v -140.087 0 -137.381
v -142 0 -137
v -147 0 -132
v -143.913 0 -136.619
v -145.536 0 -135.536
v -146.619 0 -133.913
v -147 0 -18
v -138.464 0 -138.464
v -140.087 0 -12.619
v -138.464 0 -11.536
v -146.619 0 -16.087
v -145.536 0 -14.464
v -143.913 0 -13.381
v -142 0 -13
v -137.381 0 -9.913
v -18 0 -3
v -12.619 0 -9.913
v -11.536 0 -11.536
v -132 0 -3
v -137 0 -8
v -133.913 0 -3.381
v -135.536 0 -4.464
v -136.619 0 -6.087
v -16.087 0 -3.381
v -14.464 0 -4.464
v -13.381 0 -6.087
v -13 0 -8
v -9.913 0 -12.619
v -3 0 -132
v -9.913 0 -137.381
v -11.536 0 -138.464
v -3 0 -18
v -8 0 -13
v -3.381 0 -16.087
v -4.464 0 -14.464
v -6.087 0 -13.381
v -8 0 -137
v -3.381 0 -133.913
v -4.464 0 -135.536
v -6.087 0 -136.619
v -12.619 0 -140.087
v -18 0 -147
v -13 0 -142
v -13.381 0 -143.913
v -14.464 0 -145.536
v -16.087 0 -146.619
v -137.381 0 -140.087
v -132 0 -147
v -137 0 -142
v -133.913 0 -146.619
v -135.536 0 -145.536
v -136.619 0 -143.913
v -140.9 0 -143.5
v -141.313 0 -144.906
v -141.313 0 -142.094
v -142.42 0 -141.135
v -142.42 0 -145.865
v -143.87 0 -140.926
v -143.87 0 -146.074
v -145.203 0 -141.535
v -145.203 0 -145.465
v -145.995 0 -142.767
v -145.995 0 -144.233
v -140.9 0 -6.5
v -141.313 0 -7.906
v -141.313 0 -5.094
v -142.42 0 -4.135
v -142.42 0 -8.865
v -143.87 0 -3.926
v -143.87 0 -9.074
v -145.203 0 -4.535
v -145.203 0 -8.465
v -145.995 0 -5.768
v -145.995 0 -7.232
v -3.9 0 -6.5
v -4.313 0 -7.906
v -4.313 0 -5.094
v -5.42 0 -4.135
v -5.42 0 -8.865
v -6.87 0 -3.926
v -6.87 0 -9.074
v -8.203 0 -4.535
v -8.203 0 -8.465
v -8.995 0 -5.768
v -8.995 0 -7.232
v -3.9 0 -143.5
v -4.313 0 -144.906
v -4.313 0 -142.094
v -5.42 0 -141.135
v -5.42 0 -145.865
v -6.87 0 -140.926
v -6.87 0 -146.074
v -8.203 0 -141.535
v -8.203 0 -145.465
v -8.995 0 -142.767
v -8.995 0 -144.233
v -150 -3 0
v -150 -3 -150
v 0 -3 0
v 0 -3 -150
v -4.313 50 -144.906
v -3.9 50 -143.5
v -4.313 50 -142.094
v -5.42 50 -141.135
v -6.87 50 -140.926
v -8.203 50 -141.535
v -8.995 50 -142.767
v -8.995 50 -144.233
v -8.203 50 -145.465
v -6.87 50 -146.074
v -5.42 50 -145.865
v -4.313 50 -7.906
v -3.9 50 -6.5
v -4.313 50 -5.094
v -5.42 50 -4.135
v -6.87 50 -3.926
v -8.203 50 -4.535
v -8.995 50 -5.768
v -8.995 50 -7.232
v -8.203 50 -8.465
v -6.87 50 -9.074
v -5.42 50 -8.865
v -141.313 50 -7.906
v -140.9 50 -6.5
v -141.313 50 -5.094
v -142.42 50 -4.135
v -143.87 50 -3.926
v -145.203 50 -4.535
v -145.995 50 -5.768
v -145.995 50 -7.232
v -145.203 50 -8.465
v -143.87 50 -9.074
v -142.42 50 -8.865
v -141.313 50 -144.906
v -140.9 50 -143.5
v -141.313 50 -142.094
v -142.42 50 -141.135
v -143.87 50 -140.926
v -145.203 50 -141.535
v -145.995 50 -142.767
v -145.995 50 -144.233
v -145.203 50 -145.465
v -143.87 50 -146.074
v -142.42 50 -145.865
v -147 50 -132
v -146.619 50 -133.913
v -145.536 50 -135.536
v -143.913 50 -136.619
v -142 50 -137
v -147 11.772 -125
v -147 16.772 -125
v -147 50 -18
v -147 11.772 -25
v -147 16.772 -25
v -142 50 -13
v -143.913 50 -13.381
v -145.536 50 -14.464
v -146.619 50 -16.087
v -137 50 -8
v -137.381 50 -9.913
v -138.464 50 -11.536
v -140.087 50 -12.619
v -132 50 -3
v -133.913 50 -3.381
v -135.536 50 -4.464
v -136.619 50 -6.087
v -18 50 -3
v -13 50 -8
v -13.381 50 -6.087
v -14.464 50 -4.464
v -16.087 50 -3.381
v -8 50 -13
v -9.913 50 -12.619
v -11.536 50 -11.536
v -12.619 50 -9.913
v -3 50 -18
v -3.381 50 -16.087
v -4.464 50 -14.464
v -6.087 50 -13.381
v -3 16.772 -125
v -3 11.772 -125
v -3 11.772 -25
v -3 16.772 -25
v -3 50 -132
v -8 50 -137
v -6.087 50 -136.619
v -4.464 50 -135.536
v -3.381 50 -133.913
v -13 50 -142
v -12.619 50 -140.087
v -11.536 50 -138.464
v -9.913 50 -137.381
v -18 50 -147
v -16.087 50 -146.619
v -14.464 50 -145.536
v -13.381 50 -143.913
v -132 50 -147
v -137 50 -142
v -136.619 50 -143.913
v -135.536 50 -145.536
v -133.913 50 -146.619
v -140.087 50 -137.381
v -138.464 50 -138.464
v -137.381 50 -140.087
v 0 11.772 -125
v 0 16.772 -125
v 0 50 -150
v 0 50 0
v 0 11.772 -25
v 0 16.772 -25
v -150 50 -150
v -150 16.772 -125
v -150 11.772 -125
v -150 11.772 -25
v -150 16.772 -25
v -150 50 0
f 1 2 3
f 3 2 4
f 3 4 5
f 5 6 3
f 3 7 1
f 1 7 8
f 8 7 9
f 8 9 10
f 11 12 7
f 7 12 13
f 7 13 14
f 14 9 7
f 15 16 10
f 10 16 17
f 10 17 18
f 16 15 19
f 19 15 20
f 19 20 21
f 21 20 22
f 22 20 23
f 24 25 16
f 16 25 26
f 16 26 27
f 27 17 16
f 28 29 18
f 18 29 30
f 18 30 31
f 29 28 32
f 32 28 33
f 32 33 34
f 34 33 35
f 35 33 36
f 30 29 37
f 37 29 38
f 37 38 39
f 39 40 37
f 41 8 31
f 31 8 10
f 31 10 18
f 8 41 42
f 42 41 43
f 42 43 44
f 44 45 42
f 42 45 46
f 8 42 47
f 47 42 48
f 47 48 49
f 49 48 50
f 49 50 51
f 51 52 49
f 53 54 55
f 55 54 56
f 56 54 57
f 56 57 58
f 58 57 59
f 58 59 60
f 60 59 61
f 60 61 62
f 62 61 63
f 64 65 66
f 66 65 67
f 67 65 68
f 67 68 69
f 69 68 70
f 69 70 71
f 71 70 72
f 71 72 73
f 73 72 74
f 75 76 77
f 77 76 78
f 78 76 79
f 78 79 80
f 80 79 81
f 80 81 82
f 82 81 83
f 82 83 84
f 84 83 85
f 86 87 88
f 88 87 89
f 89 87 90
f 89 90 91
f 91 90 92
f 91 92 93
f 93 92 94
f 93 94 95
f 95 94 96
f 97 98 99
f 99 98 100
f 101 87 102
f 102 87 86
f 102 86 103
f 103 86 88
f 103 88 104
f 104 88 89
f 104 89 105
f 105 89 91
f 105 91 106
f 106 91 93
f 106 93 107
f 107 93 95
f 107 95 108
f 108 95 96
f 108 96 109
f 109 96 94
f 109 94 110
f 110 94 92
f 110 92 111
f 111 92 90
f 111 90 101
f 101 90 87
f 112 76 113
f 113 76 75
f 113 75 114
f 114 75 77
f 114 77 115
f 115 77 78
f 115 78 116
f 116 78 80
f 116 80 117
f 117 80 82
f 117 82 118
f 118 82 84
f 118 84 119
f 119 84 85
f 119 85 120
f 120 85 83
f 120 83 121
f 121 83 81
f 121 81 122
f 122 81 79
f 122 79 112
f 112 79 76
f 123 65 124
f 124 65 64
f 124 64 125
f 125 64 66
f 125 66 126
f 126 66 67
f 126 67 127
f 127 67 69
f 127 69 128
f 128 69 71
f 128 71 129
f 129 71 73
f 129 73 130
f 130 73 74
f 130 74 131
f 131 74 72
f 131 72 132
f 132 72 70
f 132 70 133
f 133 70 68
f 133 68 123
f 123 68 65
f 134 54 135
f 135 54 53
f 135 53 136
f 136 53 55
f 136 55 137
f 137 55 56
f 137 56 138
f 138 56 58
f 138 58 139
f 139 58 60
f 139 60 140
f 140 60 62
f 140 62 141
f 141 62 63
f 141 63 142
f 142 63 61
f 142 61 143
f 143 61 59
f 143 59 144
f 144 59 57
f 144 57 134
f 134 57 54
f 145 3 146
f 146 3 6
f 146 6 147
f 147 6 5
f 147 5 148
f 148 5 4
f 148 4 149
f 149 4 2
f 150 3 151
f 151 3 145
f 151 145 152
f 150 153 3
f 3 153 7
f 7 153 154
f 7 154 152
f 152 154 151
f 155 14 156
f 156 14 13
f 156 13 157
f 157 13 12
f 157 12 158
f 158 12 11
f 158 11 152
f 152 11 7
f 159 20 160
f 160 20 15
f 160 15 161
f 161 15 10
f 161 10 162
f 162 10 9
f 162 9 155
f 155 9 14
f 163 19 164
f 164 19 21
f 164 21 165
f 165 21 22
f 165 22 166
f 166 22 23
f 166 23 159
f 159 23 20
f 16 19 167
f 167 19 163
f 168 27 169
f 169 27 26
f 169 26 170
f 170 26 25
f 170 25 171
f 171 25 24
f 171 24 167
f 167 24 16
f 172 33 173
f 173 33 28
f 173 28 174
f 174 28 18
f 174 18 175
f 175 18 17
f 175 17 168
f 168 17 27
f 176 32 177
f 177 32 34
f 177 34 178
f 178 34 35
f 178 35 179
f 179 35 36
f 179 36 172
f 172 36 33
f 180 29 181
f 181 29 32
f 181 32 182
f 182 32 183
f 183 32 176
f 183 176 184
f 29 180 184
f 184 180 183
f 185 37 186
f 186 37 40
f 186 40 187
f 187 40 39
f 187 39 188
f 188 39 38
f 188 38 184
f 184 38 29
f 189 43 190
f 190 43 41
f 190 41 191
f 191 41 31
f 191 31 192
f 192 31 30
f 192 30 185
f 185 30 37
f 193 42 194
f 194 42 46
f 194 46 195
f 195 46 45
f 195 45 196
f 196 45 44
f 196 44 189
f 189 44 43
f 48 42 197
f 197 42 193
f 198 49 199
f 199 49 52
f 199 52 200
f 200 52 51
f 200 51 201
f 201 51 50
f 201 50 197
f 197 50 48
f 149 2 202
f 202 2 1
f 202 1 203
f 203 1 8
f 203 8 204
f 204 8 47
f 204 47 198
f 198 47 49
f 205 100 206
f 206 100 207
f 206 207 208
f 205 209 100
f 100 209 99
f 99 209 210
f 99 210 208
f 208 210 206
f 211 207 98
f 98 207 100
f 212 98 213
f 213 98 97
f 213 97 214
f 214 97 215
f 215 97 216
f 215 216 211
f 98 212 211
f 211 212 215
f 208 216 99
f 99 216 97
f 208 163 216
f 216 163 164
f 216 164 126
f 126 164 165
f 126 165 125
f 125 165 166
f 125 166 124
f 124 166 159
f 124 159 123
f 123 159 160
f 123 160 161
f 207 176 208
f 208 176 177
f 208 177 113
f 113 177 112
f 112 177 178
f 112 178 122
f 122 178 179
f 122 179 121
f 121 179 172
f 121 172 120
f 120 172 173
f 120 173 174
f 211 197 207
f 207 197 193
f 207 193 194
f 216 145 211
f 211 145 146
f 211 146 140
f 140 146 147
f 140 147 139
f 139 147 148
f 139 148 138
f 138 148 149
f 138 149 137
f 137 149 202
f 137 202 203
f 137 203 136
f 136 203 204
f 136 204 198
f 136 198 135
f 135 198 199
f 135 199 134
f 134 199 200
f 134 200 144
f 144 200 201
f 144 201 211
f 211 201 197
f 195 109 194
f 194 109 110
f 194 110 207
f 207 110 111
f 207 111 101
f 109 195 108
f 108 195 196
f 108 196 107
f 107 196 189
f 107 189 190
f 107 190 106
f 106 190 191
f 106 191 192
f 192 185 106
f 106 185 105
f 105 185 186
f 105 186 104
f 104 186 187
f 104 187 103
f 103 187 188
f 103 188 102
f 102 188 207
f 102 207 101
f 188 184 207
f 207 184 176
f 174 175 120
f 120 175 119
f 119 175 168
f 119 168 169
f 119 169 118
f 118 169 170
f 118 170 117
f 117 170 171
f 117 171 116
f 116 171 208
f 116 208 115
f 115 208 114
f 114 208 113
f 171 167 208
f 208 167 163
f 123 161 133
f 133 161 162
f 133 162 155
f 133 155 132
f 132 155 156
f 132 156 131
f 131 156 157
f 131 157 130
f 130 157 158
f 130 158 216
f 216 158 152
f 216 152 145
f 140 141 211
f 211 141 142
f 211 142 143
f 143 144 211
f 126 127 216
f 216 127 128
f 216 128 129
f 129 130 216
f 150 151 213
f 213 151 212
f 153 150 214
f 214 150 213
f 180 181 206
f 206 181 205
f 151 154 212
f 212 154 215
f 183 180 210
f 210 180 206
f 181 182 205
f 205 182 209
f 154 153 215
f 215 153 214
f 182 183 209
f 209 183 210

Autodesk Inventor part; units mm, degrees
ref_plane "YZ Plane" through (0, 0, 0) normal (1, 0, 0) x (0, 1, 0)
ref_plane "XZ Plane" through (0, 0, 0) normal (0, 1, 0) x (-1, 0, 0)
ref_plane "XY Plane" through (0, 0, 0) normal (0, 0, 1) x (1, 0, 0)
sketch "Эскиз1" plane through (0, 0, 0) normal (0, 1, 0) x (-1, 0, 0)
  line L0 (0, 0) -> (150, 0)
  line L1 (150, 0) -> (150, -150)
  line L2 (150, -150) -> (0, -150)
  line L3 (0, -150) -> (0, 0)
  line L4 (150, 0) -> (137, 0)
  line L5 (137, -8) -> (137, -8)
  line L6 (142, -13) -> (142, -13)
  line L7 (150, -13) -> (150, 0)
  line L8 (150, -150) -> (137, -150)
  line L9 (137, -142) -> (137, -142)
  line L10 (142, -137) -> (142, -137)
  line L11 (150, -137) -> (150, -150)
  line L12 (0, 0) -> (13, 0)
  line L13 (13, -8) -> (13, -8)
  line L14 (8, -13) -> (8, -13)
  line L15 (0, -13) -> (0, 0)
  line L16 (0, -150) -> (13, -150)
  line L17 (13, -142) -> (13, -142)
  line L18 (8, -137) -> (8, -137)
  line L19 (0, -137) -> (0, -150)
  circle A0 centre (143.5, -6.5) radius 2.6
  circle A1 centre (143.5, -143.5) radius 2.6
  circle A2 centre (6.5, -143.5) radius 2.6
  circle A3 centre (6.5, -6.5) radius 2.6
  line L20 (18, -3) -> (132, -3)
  line L21 (147, -18) -> (147, -132)
  line L22 (132, -147) -> (18, -147)
  line L23 (3, -132) -> (3, -18)
  arc A4 (18, -3) -> (13, -8) centre (18, -8) ccw
  arc A5 (8, -13) -> (3, -18) centre (8, -18) ccw
  arc A6 (8, -13) -> (13, -8) centre (8, -8) ccw
  arc A7 (3, -132) -> (8, -137) centre (8, -132) ccw
  arc A8 (13, -142) -> (18, -147) centre (18, -142) ccw
  arc A9 (13, -142) -> (8, -137) centre (8, -142) ccw
  arc A10 (132, -147) -> (137, -142) centre (132, -142) ccw
  arc A11 (142, -137) -> (137, -142) centre (142, -142) ccw
  arc A12 (142, -137) -> (147, -132) centre (142, -132) ccw
  arc A13 (147, -18) -> (142, -13) centre (142, -18) ccw
  arc A14 (137, -8) -> (142, -13) centre (142, -8) ccw
  arc A15 (137, -8) -> (132, -3) centre (132, -8) ccw
  dimension "d0" = 150
  dimension "d1" = 150
  dimension "d11" = 5.2
  dimension "d12" = 5.2
  dimension "d14" = 3
  dimension "d15" = 3
  dimension "d16" = 3
  dimension "d17" = 3
  dimension "d18" = 5
extrude "Выдавливание1" add sketch "Эскиз1" along normal blind 50
extrude "Выдавливание2" add sketch "Эскиз1" against normal blind 3 contours L0 L1 L2 L3 | A0 | A1 | A2 | A3 | L20 A15 A14 A13 L21 A12 A11 A10 L22 A8 A9 A7 L23 A5 A6 A4
sketch "Эскиз2" plane through (0, 50, 0) normal (1, 0, 0) x (0, 0, -1)
  line L0 (147, -50) -> (147, 0) projected
  line L1 (3, -50) -> (3, 0) projected
  line L2 (147, 0) -> (3, 0)
  line L3 (3, 0) -> (3, -50)
  line L4 (3, -50) -> (147, -50)
  line L5 (147, -50) -> (147, 0)
  line L6 (147, -50) -> (3, 0)
  line L7 (147, 0) -> (3, -50)
  line L8 (75, -25) -> (75, -35)
  line L9 (25, -33.2281) -> (125, -33.2281)
  line L10 (125, -33.2281) -> (125, -38.2281)
  line L11 (125, -38.2281) -> (25, -38.2281)
  line L12 (25, -38.2281) -> (25, -33.2281)
  line L13 (25, -33.2281) -> (125, -38.2281) construction
  line L14 (125, -33.2281) -> (25, -38.2281) construction
  point P0 (0, -50)
  point P1 (75, -35.7281)
  dimension "d25" = 10
  dimension "d26" = 100
  dimension "d27" = 5
extrude "Выдавливание3" cut sketch "Эскиз2" against normal blind 200 contours L11 L7 L9 L6 | L6 L9 L10 L11 | L11 L12 L9 L7
properties part number "Box"
